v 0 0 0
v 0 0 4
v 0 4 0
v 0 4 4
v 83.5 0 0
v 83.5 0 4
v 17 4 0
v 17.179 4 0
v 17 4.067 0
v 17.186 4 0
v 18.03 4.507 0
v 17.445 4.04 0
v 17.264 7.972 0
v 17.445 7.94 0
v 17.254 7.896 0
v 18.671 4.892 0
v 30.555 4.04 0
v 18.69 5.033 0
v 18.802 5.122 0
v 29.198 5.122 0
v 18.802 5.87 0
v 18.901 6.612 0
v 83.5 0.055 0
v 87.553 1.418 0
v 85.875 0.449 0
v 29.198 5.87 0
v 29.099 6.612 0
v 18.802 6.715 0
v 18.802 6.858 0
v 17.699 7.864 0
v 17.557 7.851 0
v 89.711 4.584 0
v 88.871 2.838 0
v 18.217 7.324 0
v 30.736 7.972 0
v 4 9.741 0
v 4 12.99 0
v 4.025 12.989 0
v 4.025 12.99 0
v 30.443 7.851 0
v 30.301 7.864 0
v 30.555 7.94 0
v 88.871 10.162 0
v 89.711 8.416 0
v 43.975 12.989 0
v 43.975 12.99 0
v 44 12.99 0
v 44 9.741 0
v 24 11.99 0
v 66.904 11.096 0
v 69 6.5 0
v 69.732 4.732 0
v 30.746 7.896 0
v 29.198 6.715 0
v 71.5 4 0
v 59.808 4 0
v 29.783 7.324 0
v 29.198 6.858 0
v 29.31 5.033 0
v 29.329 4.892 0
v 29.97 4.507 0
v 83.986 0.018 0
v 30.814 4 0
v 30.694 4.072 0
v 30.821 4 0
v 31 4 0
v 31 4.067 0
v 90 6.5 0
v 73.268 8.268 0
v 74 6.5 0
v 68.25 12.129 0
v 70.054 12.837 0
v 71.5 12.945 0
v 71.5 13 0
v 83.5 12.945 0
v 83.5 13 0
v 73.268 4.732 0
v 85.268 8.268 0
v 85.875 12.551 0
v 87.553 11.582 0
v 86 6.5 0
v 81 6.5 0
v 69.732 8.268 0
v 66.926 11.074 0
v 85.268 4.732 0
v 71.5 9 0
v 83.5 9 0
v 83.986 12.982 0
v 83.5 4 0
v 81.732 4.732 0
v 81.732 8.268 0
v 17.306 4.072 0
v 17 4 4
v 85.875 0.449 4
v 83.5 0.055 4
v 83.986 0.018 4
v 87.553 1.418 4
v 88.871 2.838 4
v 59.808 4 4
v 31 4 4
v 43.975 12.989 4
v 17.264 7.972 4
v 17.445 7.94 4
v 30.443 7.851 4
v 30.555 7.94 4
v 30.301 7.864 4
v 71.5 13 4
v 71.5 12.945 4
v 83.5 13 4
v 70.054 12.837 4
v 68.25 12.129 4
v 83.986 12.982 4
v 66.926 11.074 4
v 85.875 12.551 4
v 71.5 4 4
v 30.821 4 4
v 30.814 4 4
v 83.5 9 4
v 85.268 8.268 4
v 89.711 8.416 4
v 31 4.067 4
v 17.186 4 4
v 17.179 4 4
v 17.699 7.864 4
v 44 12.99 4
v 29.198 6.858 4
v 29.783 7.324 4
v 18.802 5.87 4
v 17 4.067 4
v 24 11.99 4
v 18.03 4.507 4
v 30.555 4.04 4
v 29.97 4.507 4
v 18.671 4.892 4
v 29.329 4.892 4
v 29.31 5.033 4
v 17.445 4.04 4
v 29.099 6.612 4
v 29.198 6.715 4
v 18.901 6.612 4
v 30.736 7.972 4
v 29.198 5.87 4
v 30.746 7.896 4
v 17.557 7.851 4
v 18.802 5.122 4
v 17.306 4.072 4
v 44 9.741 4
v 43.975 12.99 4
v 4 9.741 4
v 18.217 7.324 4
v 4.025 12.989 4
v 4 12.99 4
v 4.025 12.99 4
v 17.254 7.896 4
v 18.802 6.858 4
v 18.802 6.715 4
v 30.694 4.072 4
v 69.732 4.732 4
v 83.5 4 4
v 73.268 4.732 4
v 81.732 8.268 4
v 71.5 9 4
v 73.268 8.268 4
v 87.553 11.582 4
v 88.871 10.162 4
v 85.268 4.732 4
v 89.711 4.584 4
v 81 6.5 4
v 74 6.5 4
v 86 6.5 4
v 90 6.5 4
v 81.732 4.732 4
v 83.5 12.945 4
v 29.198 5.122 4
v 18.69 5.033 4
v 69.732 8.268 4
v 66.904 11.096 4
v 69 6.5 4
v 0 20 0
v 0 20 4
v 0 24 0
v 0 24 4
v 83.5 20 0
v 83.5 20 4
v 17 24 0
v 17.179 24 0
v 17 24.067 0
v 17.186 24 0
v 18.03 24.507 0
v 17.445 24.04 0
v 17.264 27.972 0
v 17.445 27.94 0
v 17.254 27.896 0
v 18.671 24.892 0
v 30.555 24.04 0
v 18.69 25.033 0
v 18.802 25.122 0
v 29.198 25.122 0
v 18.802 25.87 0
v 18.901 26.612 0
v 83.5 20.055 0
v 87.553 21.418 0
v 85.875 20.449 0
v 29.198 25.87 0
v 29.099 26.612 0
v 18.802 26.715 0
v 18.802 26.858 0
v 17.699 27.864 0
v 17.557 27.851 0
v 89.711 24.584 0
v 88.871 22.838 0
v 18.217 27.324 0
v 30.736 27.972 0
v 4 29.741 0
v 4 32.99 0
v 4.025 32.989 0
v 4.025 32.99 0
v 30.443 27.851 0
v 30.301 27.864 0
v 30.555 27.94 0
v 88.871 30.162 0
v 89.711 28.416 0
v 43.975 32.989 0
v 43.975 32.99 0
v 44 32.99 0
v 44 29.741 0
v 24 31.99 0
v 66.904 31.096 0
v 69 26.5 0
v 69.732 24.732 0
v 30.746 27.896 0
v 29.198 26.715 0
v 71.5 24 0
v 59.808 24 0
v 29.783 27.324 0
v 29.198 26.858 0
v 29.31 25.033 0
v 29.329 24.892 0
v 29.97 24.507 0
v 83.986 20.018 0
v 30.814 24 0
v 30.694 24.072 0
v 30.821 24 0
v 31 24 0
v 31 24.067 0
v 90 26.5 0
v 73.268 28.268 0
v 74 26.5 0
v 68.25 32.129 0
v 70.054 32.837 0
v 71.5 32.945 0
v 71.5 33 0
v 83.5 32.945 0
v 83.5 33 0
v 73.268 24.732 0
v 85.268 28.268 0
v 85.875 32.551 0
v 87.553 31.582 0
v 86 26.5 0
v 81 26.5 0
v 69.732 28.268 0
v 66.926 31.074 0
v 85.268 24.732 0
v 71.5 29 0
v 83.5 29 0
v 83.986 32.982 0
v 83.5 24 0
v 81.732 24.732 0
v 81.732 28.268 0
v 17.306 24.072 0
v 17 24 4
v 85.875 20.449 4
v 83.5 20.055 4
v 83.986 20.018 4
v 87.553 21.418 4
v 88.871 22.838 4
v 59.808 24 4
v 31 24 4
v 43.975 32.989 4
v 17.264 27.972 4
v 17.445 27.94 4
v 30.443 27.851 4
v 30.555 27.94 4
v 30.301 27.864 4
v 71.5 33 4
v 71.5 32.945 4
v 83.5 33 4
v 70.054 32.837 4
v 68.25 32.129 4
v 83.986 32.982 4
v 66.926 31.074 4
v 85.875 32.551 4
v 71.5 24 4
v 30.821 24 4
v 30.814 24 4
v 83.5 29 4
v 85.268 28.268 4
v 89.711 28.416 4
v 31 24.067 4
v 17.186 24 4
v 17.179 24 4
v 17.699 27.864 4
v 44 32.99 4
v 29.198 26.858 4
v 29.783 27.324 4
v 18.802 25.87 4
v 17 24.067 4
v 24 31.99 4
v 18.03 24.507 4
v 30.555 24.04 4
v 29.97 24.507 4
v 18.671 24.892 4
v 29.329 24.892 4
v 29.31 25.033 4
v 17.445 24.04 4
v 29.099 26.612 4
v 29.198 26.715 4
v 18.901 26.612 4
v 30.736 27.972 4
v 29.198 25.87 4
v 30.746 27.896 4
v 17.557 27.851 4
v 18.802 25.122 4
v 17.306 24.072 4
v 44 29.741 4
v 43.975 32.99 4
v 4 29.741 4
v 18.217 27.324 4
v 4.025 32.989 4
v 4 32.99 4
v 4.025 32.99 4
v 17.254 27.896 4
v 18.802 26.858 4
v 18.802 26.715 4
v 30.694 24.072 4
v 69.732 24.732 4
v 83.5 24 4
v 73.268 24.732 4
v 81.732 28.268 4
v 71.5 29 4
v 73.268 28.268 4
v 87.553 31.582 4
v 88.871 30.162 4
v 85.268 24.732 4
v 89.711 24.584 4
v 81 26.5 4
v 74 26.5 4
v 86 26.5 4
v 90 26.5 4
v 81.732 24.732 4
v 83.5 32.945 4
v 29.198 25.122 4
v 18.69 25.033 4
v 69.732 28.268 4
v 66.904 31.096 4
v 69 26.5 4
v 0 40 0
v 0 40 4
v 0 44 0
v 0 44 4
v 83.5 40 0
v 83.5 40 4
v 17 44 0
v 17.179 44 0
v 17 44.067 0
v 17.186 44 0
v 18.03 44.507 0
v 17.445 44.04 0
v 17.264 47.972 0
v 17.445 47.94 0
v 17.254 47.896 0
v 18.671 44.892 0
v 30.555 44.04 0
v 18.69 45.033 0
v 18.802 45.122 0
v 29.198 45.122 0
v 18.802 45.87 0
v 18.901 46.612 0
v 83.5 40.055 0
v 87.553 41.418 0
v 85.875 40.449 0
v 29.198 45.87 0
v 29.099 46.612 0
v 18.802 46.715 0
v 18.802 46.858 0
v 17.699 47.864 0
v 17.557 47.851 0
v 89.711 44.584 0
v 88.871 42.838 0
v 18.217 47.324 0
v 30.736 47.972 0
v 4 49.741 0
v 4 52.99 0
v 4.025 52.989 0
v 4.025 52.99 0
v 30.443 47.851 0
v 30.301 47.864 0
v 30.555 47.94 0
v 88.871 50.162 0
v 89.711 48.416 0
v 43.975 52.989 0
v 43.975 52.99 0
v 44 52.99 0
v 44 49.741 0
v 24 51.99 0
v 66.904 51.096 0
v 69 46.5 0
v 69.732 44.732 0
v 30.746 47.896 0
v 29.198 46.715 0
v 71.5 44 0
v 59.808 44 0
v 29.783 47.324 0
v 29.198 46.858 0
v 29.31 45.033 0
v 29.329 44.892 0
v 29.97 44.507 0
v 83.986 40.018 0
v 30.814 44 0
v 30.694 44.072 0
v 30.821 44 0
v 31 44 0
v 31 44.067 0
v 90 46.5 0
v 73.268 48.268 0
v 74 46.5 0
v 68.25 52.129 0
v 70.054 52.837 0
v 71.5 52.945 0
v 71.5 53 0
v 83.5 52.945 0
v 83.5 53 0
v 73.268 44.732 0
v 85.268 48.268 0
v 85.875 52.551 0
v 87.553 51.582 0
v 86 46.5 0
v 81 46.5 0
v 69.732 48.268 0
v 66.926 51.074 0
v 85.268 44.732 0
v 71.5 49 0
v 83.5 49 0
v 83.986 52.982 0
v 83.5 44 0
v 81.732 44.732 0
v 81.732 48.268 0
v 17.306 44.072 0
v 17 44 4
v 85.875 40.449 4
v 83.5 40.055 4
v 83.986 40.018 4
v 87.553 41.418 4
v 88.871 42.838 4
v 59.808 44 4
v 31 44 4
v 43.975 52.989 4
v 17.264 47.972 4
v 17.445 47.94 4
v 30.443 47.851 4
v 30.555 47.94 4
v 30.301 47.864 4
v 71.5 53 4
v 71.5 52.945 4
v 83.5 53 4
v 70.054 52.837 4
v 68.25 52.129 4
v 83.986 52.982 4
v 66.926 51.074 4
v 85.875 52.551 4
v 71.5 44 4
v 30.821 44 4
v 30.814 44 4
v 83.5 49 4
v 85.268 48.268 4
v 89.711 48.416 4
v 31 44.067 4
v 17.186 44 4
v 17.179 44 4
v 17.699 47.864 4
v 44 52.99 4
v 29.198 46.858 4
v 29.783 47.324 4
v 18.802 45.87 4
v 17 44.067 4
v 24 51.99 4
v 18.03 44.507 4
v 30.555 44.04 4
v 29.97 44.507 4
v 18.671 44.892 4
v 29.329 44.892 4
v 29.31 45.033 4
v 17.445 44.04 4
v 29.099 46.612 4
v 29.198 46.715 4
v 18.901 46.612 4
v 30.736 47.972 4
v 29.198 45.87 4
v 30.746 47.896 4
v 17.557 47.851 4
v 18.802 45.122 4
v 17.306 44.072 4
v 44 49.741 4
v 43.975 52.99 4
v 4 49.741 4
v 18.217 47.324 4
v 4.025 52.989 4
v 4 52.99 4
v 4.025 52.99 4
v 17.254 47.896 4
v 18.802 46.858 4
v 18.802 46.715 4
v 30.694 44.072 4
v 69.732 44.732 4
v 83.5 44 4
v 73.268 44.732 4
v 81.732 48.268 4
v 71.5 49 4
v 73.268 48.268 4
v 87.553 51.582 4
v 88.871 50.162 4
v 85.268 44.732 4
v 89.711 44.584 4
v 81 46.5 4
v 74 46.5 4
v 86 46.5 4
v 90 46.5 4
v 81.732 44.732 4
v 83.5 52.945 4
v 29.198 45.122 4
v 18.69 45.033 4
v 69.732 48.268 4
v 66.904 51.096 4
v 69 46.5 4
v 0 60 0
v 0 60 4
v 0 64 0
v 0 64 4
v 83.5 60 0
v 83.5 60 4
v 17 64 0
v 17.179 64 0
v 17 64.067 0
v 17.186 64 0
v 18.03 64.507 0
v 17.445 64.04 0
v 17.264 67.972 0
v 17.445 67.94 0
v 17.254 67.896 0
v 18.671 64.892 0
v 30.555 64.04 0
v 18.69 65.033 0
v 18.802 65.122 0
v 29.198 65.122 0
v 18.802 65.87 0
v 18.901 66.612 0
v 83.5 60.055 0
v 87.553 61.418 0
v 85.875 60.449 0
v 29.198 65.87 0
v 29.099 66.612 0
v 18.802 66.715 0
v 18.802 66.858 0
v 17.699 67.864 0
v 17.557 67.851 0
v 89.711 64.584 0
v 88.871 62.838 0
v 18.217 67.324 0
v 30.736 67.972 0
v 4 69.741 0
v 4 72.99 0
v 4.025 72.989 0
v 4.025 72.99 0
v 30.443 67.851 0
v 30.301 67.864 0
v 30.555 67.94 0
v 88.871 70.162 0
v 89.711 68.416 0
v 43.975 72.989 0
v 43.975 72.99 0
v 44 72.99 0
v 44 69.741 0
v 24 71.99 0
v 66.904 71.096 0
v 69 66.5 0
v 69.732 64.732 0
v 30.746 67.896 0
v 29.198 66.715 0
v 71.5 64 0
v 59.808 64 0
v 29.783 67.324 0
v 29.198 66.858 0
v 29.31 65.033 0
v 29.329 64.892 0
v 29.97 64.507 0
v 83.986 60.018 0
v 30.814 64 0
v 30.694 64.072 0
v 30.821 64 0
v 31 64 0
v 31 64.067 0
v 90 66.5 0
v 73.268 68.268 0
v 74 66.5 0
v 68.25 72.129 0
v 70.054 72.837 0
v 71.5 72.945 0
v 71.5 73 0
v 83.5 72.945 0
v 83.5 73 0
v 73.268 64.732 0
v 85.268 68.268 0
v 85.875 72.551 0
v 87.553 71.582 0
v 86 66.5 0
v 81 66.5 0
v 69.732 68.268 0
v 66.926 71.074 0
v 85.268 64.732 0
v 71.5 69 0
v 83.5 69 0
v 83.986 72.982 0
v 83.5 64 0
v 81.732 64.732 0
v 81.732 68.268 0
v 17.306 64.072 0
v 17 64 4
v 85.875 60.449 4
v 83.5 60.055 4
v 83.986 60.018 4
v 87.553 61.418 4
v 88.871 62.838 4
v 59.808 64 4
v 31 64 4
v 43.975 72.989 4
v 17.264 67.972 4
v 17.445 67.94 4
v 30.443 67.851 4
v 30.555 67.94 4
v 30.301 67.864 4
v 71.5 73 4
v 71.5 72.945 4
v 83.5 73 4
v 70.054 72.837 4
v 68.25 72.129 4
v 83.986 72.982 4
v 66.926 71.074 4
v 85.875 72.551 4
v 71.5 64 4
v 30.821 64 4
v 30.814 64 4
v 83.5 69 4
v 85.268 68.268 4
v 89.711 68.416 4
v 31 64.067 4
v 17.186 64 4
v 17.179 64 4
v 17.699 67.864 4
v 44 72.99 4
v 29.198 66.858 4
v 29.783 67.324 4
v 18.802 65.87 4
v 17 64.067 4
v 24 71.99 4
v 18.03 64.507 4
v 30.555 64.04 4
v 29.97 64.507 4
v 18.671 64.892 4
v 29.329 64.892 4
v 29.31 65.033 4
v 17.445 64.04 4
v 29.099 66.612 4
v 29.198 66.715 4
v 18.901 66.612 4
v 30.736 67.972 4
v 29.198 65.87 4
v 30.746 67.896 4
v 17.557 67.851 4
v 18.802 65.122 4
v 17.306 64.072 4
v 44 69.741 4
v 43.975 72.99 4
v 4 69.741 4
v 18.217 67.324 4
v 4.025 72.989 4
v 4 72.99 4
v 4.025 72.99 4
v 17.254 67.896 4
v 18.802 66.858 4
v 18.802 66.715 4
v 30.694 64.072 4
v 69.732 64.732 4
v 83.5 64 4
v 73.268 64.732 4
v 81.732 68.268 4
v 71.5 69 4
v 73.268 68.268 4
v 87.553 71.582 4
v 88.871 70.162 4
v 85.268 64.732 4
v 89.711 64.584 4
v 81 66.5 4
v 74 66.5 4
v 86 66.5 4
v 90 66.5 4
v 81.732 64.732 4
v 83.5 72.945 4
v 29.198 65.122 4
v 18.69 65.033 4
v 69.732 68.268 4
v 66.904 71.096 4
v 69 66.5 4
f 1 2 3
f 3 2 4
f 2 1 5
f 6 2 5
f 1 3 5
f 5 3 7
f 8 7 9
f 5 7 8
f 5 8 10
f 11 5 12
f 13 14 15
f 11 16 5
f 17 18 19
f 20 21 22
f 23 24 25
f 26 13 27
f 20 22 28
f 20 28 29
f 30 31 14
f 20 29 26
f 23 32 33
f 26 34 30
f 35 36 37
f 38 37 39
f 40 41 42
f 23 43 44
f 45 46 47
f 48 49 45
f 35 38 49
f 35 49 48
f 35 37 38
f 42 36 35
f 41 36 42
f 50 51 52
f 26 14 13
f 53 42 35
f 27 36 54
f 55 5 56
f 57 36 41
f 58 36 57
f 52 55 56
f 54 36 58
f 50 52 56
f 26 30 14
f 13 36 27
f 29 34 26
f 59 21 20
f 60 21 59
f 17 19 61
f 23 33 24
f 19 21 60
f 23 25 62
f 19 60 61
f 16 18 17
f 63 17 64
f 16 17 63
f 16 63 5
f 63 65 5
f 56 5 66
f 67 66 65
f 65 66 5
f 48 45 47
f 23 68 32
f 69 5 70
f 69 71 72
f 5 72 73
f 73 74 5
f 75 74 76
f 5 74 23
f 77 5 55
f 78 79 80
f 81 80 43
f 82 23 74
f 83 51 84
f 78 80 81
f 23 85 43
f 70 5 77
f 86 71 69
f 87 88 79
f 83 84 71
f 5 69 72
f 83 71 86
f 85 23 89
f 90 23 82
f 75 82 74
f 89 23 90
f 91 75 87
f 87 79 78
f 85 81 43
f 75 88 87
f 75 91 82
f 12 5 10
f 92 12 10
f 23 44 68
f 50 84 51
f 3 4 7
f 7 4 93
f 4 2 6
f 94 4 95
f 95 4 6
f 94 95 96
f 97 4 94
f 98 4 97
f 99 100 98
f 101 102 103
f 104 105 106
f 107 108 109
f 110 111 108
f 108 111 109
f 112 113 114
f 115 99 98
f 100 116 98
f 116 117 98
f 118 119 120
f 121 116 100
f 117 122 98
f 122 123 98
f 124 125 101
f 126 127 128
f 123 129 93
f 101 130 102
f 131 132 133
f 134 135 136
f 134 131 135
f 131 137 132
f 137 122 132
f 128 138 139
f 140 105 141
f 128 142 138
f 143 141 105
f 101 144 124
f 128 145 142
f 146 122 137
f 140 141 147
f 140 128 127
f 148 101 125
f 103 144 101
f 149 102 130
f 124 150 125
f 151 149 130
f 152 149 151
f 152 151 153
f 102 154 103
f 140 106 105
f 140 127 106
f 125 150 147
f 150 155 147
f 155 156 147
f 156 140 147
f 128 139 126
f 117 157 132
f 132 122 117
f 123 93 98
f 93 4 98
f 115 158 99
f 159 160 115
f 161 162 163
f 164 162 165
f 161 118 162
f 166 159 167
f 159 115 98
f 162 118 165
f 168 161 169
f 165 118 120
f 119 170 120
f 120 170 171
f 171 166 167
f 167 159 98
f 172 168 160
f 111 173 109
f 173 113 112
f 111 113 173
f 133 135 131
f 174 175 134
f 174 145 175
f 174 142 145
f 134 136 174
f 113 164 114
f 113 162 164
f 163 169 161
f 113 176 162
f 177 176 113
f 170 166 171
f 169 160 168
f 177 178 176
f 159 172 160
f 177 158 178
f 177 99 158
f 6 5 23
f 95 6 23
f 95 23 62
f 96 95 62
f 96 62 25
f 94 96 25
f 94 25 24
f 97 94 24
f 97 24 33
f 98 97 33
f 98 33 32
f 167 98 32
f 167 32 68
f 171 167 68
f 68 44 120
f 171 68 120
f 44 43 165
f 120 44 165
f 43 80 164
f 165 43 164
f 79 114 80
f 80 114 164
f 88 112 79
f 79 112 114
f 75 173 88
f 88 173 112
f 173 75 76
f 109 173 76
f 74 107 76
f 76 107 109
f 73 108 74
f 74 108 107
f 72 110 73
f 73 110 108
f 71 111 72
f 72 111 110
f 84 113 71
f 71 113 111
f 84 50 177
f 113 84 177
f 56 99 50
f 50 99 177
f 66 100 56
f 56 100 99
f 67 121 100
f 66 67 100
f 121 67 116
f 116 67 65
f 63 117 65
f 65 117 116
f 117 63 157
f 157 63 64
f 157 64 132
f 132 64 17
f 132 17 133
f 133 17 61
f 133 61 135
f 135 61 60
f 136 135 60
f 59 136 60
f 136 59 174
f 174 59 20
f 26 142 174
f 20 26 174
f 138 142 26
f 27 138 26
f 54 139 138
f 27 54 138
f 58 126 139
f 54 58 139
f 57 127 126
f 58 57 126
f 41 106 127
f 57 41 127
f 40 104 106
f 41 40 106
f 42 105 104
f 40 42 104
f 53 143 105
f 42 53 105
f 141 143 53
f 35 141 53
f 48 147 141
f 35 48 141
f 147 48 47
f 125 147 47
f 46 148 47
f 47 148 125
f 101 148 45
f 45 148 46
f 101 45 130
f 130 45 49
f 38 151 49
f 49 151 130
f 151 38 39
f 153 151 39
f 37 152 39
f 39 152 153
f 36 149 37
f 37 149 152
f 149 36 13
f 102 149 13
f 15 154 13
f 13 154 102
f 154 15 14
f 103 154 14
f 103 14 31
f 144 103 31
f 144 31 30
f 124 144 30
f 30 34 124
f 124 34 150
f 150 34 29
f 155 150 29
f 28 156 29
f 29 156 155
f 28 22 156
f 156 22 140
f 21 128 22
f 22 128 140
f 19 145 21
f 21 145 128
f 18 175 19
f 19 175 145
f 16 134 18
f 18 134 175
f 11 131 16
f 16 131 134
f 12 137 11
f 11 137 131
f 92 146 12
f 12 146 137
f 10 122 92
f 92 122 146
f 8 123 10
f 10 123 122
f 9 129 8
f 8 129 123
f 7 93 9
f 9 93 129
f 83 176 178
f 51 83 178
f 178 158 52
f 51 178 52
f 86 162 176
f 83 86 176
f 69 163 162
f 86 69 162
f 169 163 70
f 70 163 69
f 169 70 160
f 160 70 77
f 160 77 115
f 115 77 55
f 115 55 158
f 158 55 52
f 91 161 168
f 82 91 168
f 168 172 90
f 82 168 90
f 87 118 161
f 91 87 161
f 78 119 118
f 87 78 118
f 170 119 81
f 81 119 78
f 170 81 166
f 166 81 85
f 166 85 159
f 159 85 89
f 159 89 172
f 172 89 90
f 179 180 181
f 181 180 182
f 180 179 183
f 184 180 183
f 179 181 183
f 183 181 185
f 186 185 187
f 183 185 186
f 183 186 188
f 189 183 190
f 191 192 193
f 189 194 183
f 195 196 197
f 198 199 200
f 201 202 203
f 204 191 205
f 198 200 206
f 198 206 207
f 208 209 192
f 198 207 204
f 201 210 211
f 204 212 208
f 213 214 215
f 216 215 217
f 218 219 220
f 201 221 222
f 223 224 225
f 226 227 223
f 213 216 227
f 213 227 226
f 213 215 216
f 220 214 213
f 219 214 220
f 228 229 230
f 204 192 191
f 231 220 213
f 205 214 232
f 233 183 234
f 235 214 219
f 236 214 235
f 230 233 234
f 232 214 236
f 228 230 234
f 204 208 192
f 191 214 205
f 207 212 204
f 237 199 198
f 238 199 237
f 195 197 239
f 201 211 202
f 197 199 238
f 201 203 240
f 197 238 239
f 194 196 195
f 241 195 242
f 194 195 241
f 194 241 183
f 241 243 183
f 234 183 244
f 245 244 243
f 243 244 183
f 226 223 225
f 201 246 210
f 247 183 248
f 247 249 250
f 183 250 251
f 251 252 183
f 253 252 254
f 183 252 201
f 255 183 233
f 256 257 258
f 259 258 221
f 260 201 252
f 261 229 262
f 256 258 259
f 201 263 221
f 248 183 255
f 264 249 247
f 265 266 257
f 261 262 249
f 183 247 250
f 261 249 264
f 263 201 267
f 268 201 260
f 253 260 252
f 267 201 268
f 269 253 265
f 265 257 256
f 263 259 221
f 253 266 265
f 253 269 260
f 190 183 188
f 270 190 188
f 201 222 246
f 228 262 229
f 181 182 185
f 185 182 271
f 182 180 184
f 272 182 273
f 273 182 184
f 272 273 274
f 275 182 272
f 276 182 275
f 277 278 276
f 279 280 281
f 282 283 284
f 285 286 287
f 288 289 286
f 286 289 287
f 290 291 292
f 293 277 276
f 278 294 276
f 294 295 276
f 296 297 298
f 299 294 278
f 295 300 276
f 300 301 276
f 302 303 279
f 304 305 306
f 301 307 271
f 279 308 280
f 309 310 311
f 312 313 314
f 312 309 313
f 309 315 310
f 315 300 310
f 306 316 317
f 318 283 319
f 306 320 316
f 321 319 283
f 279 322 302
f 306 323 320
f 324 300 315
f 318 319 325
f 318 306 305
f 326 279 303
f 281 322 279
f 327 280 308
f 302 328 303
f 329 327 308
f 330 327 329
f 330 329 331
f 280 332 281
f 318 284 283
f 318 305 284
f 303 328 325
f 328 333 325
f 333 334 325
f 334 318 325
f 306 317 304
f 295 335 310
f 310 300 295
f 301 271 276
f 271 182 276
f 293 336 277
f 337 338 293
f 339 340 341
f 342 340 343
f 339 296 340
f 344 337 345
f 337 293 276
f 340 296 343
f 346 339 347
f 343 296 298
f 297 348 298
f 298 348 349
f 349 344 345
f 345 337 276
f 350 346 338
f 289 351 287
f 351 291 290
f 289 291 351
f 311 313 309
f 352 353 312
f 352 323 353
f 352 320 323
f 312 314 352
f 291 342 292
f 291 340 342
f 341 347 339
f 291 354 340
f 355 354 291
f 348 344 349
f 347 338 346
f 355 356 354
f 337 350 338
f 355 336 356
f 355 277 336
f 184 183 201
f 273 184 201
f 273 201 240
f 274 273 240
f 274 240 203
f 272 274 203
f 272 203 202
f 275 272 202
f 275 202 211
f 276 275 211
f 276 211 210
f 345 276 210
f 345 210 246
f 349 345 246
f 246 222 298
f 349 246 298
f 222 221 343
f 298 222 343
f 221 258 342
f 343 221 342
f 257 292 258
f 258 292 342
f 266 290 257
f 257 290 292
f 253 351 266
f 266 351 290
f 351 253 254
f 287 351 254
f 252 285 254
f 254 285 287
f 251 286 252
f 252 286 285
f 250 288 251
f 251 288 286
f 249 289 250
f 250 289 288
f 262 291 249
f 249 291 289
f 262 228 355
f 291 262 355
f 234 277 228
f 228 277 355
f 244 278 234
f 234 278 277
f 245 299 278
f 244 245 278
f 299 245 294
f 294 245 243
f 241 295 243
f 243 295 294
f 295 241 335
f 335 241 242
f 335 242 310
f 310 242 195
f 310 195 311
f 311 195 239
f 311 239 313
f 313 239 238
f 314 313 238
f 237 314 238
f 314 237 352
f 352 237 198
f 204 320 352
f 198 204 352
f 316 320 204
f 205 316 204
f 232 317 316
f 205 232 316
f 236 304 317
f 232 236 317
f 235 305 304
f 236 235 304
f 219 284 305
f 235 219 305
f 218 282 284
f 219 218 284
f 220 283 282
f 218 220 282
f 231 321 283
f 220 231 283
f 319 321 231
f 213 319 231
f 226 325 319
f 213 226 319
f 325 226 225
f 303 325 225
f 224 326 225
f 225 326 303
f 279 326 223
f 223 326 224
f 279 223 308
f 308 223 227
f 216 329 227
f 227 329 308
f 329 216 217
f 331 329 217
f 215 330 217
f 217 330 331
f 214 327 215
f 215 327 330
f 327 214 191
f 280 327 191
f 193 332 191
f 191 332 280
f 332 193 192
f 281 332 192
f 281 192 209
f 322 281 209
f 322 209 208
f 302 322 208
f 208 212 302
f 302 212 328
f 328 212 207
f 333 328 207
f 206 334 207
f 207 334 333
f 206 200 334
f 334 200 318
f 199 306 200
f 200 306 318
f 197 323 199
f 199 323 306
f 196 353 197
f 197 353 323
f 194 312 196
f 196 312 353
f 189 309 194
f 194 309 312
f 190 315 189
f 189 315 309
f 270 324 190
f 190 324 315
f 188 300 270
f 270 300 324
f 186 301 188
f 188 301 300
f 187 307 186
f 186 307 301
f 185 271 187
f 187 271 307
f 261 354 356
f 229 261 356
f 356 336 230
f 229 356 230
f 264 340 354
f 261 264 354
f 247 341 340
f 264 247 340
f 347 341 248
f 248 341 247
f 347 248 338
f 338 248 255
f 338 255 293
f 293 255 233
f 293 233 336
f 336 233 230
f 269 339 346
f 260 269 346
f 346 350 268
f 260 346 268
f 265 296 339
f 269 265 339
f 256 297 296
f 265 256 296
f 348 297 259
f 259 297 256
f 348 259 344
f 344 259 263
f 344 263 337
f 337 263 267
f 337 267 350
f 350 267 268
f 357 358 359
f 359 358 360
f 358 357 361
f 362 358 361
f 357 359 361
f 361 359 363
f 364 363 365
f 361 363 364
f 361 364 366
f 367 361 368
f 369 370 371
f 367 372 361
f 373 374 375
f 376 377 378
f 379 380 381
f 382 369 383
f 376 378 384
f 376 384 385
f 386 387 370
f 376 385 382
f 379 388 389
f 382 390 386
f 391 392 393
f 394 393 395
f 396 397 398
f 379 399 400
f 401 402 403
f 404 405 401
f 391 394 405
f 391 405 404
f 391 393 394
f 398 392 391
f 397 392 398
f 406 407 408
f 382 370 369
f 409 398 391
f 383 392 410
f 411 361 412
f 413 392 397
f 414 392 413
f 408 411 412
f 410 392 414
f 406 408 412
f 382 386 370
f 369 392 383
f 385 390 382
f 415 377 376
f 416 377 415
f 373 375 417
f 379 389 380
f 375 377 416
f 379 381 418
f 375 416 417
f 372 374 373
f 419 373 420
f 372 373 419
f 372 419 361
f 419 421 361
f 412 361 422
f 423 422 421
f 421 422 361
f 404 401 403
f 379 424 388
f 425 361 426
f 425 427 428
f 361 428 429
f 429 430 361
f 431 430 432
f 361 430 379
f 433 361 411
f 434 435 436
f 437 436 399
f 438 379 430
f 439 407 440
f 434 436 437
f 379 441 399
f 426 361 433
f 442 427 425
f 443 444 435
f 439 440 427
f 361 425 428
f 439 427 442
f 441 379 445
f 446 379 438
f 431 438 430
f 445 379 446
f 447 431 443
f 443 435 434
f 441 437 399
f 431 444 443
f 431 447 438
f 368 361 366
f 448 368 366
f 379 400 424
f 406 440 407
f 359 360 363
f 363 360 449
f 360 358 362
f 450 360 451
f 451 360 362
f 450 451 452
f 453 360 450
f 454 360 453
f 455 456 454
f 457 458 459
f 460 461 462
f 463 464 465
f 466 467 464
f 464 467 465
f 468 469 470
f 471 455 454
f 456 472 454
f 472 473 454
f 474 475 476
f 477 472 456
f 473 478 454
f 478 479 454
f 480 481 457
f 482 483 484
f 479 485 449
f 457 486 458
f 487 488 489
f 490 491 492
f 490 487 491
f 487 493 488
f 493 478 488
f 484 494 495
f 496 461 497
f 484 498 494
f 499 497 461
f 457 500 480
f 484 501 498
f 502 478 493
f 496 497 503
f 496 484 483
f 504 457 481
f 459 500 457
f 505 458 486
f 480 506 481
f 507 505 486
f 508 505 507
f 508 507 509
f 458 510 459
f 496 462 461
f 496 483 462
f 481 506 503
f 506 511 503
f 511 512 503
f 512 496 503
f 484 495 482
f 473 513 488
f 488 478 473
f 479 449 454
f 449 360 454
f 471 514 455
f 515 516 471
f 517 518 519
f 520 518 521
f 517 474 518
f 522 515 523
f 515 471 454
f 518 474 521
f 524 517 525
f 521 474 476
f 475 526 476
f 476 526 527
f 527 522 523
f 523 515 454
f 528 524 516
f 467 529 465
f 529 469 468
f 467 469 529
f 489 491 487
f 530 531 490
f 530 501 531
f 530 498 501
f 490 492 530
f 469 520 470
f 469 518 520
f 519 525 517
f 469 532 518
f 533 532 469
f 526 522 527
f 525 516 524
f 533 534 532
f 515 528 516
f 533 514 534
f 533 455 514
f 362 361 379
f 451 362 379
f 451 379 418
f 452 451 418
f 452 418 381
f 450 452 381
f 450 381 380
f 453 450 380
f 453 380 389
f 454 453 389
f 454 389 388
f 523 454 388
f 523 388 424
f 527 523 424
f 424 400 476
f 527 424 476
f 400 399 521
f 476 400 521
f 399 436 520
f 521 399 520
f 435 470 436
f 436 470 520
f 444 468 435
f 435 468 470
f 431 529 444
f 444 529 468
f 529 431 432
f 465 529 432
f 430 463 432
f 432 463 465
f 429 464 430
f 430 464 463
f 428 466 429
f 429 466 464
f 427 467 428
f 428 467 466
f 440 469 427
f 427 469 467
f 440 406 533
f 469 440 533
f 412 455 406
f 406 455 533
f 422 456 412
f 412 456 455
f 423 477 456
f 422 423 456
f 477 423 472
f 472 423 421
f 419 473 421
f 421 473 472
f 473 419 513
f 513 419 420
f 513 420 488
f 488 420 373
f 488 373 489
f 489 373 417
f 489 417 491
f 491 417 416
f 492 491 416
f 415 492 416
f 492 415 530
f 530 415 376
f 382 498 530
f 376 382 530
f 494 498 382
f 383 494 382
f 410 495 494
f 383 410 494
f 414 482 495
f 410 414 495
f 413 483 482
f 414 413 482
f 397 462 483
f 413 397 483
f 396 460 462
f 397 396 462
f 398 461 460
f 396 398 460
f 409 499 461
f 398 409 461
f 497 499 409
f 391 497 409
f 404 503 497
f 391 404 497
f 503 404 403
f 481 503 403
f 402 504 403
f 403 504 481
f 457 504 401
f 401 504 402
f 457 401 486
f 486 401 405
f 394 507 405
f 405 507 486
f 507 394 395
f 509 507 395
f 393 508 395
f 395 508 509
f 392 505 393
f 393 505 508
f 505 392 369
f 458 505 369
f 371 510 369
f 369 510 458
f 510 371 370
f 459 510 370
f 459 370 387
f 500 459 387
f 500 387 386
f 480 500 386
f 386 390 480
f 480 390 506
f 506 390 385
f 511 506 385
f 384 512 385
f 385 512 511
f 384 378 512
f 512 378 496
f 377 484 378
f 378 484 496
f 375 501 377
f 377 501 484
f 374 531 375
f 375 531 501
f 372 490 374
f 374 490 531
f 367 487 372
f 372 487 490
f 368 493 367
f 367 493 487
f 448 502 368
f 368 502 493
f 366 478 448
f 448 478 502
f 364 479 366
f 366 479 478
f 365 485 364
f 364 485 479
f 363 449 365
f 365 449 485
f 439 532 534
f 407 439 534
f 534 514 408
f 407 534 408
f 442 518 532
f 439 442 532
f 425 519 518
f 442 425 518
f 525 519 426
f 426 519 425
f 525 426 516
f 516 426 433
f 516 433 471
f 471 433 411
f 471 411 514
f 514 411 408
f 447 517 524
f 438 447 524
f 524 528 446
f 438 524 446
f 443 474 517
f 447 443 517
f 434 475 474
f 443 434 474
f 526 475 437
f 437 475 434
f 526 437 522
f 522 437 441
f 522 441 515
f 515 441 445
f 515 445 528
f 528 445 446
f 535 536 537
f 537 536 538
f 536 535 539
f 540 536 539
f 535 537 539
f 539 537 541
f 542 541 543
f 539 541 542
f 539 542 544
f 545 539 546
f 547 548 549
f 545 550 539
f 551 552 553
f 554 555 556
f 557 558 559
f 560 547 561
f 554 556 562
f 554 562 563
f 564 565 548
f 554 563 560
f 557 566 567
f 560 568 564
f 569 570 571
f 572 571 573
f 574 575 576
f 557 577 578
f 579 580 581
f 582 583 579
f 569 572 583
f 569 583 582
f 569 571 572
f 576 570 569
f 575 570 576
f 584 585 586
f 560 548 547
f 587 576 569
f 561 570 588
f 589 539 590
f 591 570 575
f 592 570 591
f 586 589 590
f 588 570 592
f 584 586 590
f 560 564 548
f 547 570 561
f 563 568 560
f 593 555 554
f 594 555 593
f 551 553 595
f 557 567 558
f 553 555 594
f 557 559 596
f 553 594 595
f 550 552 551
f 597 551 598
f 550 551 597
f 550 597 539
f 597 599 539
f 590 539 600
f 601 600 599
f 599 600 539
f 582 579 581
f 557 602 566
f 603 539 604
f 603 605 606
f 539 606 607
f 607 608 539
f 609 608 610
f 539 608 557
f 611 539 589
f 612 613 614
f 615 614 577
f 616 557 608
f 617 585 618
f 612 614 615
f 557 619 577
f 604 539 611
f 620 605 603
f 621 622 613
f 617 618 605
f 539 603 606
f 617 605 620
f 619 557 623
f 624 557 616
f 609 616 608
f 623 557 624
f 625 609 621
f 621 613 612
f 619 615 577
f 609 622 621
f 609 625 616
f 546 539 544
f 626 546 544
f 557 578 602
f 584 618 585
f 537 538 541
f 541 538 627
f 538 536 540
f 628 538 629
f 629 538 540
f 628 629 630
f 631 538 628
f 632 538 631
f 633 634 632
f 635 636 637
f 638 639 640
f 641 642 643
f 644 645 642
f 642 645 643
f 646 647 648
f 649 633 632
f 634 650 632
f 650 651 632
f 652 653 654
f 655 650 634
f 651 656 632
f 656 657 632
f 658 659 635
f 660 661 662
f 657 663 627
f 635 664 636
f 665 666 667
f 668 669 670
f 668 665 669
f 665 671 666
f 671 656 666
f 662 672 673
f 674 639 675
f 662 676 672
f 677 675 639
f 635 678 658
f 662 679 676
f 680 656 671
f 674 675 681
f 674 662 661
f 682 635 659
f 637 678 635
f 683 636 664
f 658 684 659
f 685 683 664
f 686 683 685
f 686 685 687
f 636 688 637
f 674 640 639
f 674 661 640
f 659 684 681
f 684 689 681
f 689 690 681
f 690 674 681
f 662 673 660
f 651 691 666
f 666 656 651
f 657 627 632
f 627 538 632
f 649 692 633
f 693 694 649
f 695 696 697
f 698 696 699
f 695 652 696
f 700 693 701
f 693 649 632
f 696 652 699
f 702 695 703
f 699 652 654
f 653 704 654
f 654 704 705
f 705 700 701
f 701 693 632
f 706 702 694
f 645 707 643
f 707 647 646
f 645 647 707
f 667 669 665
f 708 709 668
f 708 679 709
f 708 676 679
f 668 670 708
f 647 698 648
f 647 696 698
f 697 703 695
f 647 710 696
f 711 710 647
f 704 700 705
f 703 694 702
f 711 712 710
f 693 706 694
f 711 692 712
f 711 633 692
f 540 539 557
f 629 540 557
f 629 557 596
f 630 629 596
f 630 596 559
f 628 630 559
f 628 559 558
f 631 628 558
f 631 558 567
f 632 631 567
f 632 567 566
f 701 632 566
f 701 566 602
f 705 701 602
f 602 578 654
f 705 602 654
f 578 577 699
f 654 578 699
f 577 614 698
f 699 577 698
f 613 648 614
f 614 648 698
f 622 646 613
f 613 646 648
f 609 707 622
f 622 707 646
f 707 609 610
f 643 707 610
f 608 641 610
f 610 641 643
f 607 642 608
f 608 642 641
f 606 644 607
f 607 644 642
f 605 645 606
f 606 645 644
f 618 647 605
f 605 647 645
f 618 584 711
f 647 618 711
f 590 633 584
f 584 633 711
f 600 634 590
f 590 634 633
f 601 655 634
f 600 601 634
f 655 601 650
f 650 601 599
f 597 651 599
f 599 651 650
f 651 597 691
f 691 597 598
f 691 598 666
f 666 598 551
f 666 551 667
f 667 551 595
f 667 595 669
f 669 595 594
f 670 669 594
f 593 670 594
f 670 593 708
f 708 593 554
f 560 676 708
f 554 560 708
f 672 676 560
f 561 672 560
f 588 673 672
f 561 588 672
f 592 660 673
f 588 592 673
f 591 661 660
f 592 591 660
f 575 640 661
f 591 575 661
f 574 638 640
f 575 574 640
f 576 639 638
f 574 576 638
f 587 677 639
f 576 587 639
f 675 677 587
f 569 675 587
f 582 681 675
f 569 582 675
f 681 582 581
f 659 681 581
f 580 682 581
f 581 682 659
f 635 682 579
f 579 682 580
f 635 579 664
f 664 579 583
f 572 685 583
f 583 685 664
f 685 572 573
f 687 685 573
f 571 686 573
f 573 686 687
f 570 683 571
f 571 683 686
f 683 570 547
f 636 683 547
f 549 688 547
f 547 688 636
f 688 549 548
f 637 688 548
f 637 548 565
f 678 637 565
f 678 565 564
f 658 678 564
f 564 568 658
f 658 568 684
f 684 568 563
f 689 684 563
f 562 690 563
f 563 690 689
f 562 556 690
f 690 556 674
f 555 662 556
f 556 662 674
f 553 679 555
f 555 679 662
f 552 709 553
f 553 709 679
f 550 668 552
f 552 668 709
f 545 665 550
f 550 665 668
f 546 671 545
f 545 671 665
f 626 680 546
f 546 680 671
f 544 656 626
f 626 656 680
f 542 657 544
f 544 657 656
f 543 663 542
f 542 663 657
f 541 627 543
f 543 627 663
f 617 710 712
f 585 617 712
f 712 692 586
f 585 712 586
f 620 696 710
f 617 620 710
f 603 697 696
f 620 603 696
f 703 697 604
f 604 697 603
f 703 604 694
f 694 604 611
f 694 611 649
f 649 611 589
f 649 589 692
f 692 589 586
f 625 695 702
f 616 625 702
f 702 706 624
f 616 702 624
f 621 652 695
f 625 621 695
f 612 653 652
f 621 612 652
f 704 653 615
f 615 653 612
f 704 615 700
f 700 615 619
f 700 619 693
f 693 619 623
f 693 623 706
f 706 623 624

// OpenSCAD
// Inline cleat for tying off cord-ends.

l1 = 90;  // Overall length
l2 = 24;  // Offset to centre of cleat
l3 = 40;  // Overall width of cleat
l4 = 10;  // Width of cleat neck
l5 = 12;  // Distance between buckle holes

d  = 5;    // Diameter of cord clearance hole

h1 = 13;  // Overall height of cleat
h2 = 4;   // Height of base
h3 = 4;   // Height of cleat neck
h4 = 6;   // Height of cleat jaw
h5 = 12;  // Overall height at centre of cleat

t = 4;    // Overall thickness

delta = 0.01;

// Supporting shapes
// -----------------

module RoundedRectangle(l, w, t, r)
{
    translate([r,0,0]) cube(size=[l-2*r,w,t]);
    translate([0,r,0]) cube(size=[l,w-2*r,t]);
    for (xo=[r, l-r])
    {
        for (yo=[r,w-r])
        {
            translate([xo,yo,0]) cylinder(r=r, h=t);
        }
    }
}

//RoundedRectangle(50, 20, 5, 8);

module SemiRoundedRectangle(l, w, t)
{
    r = w/2;
    translate([0,-r,0]) cube(size=[l-r,w,t]);
    cylinder(r=r, h=t);
}

//SemiRoundedRectangle(50, 20, 5);

module BuckleOutline(l, h, t, r)
{
    RoundedRectangle(l, h, t, r);
    intersection()
    {
        translate([r,h-r,0])
            rotate([0,0,180+45])
                translate([0, -r, 0])
                    cube(size=[l, h, t]);
        translate([-h,0,0])
            cube(size=[l+h, h, t]);
    }
}

//BuckleOutline(50, 20, 5, 8);

module CleatCutout(l, hn, hj, t)
{
    lc = l+hn/2;
    a = atan2(hj-hn,l);
    translate([hn/2,hn/2,-delta])
    {
        SemiRoundedRectangle(lc,hn,t+2*delta);
        rotate([0,0,a]) SemiRoundedRectangle(lc,hn,t+2*delta);
    }
}

//CleatCutout(20,3,5,4);

// Base
// -----------------
// Origin at bottom left
module Base(l, h, t)
{
    cube(size=[l,h,t]);
}

// Cleat
// -----------------
// Origin at bottom centre
module Cleat(l,ln,h,hn,hj,hc,t)
{
    lc = (l-ln)/2;
    a  = atan2(h-hc,l/2);
    difference()
    {
        translate([-l/2,0,0]) cube(size=[l,h,t]);
        translate([ln/2,0,0])
            CleatCutout(lc, hn, hj, t);
        translate([-ln/2,0,0])
            mirror([1,0,0])
                CleatCutout(lc, hn, hj, t);
        translate([0,hc,0])
            rotate([0,0,a])
                cube(size=[l/2,h,t]);
        translate([0,hc,0])
            mirror([1,0,0])
                rotate([0,0,a])
                    cube(size=[l/2,h,t]);
    }
}

//Cleat(l3,l4,h1,h3,h4,h5,t);

// Buckle
// -----------------
// Origin at bottom right
module Buckle(l, h, t, p, d, or)
{
    translate([-l,0,0])
    {
        difference()
        {
            BuckleOutline(l,h,t,or);
            translate([l/2+p/2,h/2,-delta]) cylinder(r=d/2,h=h+2*delta,$fn=8);
            translate([l/2-p/2,h/2,-delta]) cylinder(r=d/2,h=h+2*delta,$fn=8);
        }
    }
}

// Composed piece
// -----------------
module InlineCleat()
{
    or = h2+d/2;
    Base(l1-or, h2, t);
    translate([l2,h2-delta,0]) Cleat(l3,l4,h1-h2,h3,h4,h5-h2,t);
    translate([l1,0,0]) Buckle(h2+d/2+l5+d/2+h2, h2+d+h2, t, l5, d, or); 
}

// InlineCleat();

for (i = [0:3])
    translate([0,i*20,0]) InlineCleat();
